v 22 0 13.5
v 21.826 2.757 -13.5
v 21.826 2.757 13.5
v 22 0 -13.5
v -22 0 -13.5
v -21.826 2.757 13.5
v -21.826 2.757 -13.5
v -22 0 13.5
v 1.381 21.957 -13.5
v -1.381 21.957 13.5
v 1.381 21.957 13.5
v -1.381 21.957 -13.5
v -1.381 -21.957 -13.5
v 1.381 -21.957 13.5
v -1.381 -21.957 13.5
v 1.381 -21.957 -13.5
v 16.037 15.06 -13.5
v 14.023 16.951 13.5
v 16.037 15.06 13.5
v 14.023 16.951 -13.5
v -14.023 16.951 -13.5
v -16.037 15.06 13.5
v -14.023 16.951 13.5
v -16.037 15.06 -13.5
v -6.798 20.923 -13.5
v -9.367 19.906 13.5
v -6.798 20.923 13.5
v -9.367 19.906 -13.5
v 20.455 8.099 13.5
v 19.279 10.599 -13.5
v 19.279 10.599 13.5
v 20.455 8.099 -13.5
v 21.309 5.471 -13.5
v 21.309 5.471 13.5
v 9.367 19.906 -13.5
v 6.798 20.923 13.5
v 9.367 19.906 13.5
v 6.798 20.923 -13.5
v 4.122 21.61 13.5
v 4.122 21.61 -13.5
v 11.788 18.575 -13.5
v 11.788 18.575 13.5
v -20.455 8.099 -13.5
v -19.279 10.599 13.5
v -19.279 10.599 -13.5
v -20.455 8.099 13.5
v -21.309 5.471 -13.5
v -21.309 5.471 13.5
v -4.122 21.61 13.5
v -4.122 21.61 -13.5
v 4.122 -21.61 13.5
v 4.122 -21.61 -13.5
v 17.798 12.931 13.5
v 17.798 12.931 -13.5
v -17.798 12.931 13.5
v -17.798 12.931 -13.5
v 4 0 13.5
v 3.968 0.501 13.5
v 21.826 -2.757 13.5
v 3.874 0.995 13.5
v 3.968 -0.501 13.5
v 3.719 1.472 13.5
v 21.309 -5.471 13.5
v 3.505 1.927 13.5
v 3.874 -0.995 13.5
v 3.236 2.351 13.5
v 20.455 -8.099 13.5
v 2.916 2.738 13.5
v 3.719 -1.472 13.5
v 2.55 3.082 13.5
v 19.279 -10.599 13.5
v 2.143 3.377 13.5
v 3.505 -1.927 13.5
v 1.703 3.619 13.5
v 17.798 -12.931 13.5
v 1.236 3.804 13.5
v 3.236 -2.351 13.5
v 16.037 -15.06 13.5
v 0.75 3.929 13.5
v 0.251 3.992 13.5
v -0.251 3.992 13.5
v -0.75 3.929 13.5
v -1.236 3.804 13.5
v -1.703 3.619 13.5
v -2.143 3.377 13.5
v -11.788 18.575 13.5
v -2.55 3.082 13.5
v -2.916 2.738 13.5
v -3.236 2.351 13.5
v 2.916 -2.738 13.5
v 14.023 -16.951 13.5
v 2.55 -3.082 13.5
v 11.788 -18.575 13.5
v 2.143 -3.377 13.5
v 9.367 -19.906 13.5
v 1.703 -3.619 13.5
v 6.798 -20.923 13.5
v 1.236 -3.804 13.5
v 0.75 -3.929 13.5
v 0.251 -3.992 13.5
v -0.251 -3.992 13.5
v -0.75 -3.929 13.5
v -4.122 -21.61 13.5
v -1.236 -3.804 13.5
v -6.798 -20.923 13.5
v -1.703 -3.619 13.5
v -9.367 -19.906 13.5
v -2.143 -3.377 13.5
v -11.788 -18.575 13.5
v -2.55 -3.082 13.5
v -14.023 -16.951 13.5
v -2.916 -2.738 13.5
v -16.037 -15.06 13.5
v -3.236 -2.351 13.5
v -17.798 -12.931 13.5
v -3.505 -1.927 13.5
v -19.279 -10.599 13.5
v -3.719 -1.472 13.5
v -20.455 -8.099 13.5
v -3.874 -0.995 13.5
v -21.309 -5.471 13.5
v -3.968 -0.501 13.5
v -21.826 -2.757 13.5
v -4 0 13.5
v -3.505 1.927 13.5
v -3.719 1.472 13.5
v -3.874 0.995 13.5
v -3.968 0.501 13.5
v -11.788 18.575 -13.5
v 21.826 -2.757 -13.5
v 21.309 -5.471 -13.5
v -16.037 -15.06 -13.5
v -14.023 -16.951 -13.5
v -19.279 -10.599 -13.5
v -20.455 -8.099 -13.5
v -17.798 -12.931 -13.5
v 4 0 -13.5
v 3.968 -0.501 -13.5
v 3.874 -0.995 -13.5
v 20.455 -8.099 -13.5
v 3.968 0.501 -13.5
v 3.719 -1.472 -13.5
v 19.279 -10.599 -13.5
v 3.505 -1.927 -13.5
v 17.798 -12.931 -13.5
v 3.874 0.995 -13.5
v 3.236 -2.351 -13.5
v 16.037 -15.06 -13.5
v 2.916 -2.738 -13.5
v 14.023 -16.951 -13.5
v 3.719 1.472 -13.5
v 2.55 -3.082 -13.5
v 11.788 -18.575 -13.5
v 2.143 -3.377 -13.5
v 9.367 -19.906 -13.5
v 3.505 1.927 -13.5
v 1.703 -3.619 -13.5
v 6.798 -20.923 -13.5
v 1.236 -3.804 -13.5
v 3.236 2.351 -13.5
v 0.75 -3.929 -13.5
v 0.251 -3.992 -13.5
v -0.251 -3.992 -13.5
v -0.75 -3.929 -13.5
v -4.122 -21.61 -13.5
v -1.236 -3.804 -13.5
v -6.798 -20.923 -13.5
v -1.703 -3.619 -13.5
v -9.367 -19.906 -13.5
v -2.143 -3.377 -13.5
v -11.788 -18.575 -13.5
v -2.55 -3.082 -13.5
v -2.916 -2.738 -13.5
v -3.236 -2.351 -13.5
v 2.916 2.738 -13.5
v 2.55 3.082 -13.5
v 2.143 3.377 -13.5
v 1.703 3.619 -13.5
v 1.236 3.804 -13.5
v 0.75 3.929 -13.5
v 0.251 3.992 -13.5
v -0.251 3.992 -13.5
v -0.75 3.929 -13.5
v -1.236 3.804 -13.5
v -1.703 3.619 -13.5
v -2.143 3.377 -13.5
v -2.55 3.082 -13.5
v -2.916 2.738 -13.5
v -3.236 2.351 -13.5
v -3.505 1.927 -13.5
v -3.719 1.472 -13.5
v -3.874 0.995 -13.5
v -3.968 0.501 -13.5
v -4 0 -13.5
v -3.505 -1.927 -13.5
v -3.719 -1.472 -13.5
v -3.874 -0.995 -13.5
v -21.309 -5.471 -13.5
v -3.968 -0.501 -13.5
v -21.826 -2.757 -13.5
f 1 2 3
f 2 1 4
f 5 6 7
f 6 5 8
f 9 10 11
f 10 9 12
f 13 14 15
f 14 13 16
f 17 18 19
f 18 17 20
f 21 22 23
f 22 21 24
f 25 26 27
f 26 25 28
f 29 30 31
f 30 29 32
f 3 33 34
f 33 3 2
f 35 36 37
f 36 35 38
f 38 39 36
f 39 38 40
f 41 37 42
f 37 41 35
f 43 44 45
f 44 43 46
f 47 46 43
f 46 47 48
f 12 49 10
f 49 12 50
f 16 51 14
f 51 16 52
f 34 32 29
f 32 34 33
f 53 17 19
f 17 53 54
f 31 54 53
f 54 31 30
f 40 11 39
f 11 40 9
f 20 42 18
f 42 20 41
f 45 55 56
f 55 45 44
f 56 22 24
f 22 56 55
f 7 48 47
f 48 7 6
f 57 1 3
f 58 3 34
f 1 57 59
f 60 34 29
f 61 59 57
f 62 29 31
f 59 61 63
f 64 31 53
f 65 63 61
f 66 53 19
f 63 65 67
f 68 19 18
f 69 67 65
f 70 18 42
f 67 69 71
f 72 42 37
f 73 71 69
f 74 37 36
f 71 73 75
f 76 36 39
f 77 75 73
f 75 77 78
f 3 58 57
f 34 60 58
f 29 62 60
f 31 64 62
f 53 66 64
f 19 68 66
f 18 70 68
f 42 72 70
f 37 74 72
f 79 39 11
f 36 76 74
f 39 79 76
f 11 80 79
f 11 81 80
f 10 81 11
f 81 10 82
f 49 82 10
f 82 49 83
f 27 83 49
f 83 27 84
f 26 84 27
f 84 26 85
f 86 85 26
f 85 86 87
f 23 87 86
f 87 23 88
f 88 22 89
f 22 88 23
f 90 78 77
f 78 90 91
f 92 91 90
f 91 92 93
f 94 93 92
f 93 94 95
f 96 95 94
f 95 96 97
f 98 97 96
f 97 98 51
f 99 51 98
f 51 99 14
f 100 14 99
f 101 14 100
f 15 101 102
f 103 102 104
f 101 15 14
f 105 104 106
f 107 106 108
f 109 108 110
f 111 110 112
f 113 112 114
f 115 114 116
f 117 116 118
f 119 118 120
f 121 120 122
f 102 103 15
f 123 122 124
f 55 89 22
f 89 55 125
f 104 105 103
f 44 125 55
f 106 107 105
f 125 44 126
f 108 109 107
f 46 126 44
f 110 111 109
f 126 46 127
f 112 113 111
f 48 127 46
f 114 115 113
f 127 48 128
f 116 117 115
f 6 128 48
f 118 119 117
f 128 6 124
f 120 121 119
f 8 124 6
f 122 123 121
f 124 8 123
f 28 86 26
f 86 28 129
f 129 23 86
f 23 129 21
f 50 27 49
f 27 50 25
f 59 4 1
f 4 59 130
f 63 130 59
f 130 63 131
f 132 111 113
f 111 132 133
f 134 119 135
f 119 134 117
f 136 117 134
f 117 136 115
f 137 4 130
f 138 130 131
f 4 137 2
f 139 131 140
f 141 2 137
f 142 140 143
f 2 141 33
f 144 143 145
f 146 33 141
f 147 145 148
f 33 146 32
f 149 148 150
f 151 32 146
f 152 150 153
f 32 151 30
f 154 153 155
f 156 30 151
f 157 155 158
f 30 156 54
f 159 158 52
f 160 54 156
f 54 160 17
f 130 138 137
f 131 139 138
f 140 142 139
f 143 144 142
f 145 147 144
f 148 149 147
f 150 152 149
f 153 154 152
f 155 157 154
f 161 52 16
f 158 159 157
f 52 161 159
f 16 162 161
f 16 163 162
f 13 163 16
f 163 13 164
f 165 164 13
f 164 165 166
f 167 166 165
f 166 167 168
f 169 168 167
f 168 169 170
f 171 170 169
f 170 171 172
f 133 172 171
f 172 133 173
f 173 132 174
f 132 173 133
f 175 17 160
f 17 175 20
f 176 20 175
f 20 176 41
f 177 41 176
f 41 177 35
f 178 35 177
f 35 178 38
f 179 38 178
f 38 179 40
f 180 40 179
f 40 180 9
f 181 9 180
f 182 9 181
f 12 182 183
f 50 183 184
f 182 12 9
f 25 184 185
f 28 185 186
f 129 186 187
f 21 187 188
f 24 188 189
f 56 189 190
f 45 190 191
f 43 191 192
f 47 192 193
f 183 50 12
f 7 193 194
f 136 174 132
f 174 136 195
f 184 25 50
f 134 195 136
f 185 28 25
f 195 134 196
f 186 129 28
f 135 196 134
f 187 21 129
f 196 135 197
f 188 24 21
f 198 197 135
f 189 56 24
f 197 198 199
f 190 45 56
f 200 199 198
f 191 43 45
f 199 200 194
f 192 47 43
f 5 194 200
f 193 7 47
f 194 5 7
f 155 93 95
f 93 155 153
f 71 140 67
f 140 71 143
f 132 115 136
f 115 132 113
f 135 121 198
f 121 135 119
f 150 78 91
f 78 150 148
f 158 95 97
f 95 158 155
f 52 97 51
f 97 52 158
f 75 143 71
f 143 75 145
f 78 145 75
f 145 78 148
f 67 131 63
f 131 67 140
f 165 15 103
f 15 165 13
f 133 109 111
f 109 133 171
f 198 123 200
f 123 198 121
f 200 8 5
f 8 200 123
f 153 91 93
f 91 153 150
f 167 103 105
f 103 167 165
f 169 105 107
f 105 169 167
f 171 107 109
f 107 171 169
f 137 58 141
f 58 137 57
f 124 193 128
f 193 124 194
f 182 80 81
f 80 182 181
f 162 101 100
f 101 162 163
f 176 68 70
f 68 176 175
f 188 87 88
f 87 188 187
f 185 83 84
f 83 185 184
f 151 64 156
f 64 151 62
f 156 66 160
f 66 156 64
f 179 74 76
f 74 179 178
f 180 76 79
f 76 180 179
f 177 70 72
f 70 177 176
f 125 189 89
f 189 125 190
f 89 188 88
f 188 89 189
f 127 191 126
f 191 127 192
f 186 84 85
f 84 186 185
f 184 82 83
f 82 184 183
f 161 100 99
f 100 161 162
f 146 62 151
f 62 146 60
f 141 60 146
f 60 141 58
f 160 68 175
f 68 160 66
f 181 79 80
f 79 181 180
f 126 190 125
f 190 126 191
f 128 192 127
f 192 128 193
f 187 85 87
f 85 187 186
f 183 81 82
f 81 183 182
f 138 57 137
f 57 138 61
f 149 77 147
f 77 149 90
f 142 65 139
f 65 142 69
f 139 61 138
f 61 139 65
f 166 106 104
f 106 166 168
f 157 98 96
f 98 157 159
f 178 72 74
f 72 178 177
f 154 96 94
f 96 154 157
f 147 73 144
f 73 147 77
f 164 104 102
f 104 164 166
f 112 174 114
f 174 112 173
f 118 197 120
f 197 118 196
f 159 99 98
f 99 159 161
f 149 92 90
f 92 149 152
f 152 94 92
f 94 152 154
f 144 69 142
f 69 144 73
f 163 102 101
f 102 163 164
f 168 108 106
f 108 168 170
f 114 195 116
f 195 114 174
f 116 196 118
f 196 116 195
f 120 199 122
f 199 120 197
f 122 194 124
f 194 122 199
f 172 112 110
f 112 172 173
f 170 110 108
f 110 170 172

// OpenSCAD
$fn = 50;


difference() {
	union() {
		translate(v = [0, 0, -13.5000000000]) {
			cylinder(h = 27, r = 22.0000000000);
		}
	}
	union() {
		translate(v = [0, 0, -100.0000000000]) {
			cylinder(h = 200, r = 4);
		}
	}
}
